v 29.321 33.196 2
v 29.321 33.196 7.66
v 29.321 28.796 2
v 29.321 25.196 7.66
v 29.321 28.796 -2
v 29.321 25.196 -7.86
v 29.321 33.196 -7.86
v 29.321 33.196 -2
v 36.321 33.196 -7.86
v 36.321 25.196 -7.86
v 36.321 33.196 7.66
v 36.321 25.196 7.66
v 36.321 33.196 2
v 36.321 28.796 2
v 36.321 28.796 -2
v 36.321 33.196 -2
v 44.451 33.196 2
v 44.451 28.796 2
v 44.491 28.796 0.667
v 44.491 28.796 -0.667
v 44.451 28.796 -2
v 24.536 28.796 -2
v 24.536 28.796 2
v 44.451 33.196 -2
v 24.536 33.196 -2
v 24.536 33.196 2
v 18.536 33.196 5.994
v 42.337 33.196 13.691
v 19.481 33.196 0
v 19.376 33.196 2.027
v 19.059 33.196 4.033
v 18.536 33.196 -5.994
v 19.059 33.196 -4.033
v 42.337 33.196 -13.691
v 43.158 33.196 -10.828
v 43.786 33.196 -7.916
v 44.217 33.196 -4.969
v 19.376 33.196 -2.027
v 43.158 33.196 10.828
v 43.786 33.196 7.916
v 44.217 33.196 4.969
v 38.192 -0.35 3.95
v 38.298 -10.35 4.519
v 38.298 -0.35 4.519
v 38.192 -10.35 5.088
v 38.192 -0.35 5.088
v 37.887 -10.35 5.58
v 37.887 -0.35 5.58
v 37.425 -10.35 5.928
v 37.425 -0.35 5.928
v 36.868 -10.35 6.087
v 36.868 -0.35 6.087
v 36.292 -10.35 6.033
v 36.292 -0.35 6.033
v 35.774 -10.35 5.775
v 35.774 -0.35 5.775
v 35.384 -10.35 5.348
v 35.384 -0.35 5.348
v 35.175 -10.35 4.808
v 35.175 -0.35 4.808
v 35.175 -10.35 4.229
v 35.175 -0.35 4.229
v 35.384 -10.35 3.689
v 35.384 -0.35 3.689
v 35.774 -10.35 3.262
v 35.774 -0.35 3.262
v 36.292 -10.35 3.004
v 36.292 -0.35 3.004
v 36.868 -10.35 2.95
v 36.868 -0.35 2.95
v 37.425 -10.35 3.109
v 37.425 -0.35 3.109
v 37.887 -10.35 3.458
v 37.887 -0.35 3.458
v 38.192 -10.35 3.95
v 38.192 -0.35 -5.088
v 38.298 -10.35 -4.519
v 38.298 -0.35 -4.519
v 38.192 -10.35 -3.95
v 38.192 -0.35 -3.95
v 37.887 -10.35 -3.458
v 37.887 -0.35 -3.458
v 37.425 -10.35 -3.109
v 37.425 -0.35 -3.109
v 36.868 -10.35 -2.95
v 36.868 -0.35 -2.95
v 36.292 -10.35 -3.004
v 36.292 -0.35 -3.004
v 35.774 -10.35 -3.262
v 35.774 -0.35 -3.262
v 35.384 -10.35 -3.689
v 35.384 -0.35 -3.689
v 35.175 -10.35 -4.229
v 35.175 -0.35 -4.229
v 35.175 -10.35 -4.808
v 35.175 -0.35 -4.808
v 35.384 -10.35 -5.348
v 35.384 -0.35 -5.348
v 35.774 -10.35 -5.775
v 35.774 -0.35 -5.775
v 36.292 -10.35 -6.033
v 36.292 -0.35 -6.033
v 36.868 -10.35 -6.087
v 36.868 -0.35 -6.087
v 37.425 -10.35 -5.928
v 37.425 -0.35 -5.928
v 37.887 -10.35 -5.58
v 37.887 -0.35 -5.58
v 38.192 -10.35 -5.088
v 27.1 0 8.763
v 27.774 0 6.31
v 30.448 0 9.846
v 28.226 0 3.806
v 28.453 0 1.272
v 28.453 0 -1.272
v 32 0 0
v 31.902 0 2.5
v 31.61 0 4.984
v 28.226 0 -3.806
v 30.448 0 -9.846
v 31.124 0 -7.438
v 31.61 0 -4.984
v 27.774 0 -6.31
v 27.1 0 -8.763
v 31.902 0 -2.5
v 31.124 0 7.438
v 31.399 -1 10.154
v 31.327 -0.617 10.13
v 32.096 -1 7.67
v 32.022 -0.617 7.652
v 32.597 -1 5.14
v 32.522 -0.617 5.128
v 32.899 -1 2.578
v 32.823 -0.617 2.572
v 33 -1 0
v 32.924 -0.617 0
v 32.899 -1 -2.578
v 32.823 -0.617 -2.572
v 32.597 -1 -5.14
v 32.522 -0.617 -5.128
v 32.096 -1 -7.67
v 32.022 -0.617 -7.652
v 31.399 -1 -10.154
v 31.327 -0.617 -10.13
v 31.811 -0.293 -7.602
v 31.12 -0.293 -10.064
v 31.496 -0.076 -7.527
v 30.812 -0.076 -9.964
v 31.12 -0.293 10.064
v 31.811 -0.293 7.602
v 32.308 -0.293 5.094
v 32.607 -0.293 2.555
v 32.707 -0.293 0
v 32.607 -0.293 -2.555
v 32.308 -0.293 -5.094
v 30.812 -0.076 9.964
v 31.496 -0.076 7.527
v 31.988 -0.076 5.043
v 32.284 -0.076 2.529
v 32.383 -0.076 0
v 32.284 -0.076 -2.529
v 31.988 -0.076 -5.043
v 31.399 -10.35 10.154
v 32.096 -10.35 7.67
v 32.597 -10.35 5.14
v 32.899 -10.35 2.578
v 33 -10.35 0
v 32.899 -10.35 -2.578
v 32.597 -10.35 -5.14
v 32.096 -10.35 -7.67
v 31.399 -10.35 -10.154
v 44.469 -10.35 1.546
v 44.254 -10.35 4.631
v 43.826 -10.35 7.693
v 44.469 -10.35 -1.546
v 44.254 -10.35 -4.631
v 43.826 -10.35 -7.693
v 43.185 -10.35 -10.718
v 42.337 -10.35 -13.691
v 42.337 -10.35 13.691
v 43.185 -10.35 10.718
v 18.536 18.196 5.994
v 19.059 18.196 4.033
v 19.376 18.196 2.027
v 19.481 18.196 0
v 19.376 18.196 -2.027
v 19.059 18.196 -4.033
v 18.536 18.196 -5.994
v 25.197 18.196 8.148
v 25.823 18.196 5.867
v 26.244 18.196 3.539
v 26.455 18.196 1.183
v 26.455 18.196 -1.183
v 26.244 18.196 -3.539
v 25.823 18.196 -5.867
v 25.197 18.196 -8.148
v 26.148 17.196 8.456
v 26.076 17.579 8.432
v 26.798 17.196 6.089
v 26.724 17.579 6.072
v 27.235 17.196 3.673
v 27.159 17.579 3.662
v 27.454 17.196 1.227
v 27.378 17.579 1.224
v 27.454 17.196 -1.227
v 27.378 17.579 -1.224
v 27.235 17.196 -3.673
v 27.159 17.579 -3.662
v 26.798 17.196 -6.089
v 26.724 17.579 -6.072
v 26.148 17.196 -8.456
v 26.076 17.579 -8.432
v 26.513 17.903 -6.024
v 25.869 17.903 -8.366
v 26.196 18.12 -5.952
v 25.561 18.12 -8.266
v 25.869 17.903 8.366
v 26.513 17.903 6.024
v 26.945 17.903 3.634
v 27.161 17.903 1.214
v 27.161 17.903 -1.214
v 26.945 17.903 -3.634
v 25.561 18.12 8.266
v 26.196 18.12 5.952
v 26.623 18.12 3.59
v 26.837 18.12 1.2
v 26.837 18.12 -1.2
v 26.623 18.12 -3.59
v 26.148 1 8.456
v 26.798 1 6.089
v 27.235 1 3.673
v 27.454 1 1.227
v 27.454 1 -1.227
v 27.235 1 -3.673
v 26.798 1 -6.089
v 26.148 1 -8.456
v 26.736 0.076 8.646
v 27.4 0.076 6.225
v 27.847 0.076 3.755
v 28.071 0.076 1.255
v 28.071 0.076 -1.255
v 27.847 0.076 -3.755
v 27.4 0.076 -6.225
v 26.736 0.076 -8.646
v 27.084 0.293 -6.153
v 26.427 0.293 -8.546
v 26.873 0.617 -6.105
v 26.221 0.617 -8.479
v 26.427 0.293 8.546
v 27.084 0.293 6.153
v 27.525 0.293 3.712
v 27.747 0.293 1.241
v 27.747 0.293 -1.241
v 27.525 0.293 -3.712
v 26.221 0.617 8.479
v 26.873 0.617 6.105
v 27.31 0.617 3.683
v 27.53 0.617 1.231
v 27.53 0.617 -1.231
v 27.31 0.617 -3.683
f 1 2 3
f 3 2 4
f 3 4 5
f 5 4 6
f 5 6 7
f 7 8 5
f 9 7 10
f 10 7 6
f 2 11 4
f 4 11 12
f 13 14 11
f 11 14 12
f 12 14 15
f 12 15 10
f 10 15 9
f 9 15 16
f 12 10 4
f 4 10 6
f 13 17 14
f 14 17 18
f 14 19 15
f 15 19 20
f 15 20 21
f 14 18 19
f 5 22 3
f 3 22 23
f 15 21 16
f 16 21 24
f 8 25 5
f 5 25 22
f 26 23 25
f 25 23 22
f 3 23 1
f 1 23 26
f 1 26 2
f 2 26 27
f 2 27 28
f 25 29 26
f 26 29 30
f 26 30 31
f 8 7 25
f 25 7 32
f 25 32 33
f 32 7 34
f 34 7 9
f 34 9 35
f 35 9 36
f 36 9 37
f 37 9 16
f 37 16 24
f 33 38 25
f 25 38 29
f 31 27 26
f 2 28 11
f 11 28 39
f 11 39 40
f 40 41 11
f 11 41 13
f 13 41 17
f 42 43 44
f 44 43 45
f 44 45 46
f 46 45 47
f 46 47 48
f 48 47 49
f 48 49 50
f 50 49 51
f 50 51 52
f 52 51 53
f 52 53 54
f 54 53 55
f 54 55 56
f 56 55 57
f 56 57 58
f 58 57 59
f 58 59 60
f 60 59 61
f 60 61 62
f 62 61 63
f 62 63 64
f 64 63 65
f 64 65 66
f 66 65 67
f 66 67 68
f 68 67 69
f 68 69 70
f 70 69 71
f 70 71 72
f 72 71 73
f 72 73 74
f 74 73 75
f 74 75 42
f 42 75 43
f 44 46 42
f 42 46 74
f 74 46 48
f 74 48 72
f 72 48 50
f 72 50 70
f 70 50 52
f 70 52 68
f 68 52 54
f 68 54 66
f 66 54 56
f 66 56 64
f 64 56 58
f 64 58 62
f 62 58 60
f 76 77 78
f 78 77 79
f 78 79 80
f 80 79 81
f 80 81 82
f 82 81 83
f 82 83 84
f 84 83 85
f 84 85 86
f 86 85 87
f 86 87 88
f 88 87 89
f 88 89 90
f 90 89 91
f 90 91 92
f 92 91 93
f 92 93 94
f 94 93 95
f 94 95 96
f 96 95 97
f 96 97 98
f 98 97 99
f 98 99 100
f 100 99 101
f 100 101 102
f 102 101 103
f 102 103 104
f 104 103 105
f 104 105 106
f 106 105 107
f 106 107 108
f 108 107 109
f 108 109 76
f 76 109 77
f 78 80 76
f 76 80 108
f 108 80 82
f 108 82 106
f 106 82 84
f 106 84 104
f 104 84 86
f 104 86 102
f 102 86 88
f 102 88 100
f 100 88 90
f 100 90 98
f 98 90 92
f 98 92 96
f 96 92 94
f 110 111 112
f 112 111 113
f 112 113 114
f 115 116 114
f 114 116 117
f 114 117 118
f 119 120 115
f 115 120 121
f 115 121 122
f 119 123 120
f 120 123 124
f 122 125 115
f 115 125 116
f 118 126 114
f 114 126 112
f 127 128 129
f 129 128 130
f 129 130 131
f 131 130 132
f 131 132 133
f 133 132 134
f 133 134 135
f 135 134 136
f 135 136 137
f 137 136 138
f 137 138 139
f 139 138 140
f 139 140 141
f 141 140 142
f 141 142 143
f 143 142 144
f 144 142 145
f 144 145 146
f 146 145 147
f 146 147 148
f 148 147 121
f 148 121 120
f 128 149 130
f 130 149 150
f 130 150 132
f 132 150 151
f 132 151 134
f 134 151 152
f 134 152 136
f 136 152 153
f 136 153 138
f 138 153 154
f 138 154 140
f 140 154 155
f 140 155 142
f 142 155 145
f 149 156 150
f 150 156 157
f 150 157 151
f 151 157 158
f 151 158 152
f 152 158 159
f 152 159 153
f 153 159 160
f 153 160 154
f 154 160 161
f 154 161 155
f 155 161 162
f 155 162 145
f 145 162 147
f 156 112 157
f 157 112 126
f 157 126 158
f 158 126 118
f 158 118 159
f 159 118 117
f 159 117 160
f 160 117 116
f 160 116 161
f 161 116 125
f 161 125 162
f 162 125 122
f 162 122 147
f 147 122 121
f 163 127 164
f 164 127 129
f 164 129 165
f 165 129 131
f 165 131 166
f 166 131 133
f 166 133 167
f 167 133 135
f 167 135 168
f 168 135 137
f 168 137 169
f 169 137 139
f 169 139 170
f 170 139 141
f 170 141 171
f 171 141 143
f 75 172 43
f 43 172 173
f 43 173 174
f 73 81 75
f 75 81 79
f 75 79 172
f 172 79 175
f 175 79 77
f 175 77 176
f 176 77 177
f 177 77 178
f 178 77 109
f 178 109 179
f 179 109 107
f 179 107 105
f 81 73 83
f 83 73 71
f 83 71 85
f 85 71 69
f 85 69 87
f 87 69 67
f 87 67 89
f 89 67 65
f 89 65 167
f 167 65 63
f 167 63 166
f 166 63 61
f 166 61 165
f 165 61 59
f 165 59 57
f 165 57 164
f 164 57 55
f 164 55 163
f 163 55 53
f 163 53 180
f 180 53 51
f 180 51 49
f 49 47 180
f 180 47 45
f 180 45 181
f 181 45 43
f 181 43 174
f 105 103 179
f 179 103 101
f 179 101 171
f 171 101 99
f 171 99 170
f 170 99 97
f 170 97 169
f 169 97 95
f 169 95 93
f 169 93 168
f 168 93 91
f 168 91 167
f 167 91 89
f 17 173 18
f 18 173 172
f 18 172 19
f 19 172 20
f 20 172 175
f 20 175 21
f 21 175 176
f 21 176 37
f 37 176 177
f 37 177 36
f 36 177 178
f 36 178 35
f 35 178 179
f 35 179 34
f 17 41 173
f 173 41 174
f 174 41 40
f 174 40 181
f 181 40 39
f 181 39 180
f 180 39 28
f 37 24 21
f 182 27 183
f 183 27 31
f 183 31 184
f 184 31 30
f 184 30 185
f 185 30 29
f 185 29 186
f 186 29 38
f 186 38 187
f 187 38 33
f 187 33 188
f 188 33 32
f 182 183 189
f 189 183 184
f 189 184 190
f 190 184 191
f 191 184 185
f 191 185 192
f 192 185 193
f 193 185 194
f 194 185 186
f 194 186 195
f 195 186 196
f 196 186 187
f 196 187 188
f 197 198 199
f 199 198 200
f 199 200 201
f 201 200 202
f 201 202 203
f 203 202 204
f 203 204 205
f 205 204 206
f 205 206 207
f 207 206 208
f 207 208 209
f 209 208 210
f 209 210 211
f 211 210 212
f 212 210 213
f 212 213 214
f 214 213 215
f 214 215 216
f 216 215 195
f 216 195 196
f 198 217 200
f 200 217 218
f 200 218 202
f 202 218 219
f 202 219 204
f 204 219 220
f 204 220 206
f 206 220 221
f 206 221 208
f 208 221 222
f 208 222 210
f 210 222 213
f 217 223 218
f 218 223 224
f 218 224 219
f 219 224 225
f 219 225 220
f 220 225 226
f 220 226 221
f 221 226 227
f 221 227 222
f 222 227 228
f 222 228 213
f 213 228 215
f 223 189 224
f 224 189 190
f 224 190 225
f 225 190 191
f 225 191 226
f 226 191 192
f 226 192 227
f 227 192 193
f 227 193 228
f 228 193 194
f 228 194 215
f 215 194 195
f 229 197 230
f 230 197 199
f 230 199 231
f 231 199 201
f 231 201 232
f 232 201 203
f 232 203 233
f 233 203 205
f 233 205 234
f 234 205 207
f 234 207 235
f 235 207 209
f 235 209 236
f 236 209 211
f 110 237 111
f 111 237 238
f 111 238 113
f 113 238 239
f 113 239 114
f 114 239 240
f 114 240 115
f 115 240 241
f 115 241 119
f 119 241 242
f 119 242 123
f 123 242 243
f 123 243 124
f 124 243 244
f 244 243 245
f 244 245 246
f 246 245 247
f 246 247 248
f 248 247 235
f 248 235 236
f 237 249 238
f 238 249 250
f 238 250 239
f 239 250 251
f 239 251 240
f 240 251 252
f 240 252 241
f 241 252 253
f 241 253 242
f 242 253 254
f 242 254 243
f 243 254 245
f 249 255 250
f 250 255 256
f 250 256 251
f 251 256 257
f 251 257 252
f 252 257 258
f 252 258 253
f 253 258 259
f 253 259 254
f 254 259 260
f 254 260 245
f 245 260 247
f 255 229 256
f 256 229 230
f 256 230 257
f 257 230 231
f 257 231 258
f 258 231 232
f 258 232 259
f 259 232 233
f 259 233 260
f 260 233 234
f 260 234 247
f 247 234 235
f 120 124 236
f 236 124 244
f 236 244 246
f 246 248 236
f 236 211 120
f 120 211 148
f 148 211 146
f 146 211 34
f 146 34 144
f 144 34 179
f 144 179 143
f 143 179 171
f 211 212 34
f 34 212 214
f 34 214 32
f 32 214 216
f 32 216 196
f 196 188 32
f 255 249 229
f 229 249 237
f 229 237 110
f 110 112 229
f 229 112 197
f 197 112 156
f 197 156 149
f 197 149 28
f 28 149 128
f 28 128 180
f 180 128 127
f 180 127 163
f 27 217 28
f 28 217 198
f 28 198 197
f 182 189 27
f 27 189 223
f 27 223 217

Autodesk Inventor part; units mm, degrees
ref_plane "YZ Plane" through (0, 0, 0) normal (1, 0, 0) x (0, 1, 0)
ref_plane "XZ Plane" through (0, 0, 0) normal (0, 1, 0) x (-1, 0, 0)
ref_plane "XY Plane" through (0, 0, 0) normal (0, 0, 1) x (1, 0, 0)
sketch "Эскиз3" plane through (0, 0, 0) normal (0, 0, 1) x (1, 0, 0)
  line L0 (28.4814, 0) -> (32, 0)
  line L1 (26.4814, 18.1962) -> (19.4814, 18.1962)
  line L2 (19.4814, 18.1962) -> (19.4814, 33.1962)
  line L3 (27.4814, 17.1962) -> (27.4814, 1)
  line L4 (33, -1) -> (33, -10.35)
  line L5 (33, -10.35) -> (44.4955, -10.35)
  line L6 (109.4355, -10.35) -> (-108.0344, -10.35) projected
  arc A0 (33, -1) -> (32, 0) centre (32, -1) ccw
  arc A1 (27.4814, 1) -> (28.4814, 0) centre (28.4814, 1) ccw
  arc A2 (27.4814, 17.1962) -> (26.4814, 18.1962) centre (26.4814, 17.1962) ccw
  line L7 (19.4814, 33.1962) -> (44.4955, 33.1962)
  line L8 (44.4955, 33.1962) -> (44.4955, -10.35)
  point P0 (27.4814, 18.1962)
  point P1 (27.4814, 0)
  dimension "d25" = 8
  dimension "d42" = 15
  dimension "d44" = 1
  dimension "d45" = 1
  dimension "d54" = 3.5186
  dimension "d55" = 25.0142
sketch "Эскиз4" plane through (0, 0, 0) normal (0, 1, 0) x (-1, 0, 0)
  arc A0 (-24.7386, 8) -> (-24.7386, -8) centre (0, 0) ccw
  dimension "d31" = 26
sweep "Сдвиг1" add profiles "Эскиз3" path "Эскиз4"
sketch "Эскиз8" plane through (0, -10.35, 0) normal (0, -1, 0) x (1, 0, 0)
  arc A0 (31.399, -10.1538) -> (31.399, 10.1538) centre (0, 0) ccw projected
  arc A1 (35.205, -11.3846) -> (35.205, 11.3846) centre (0, 0) ccw construction
  line L0 (42.3369, -13.6909) -> (31.399, -10.1538) projected
  circle A2 centre (36.723, -4.5186) radius 1.575
  circle A3 centre (36.723, 4.5186) radius 1.575
  line L1 (31.399, 10.1538) -> (42.3369, 13.6909) projected
  point P0 (0, 0)
  dimension "d46" = 4
  dimension "d47" = 3.15
  dimension "d48" = 3.15
  dimension "d49" = 7
  dimension "d50" = 7
extrude "Выдавливание4" cut sketch "Эскиз8" against normal blind 10
sketch "Эскиз9" plane through (0, 33.1962, 0) normal (0, 1, 0) x (1, 0, 0)
  point P0 (0, 0)
ref_plane "РабПлоскость1" through (0, -10.35, 0) normal (0, 0, 1) x (0, 1, 0)
sketch "Эскиз10" plane through (0, -10.35, 0) normal (0, 0, 1) x (0, 1, 0)
  line L0 (47.9462, -48.5362) -> (39.1462, -48.5362)
  line L1 (39.1462, -48.5362) -> (39.1462, -24.5362)
  line L2 (39.1462, -24.5362) -> (47.9462, -24.5362)
  line L3 (47.9462, -24.5362) -> (47.9462, -48.5362)
  line L4 (43.5462, -42.3369) -> (43.5462, -18.5362) projected
  line L5 (47.9462, -48.5362) -> (39.1462, -24.5362) construction
  line L6 (39.1462, -48.5362) -> (47.9462, -24.5362) construction
  line L7 (28.5462, -18.5362) -> (43.5462, -18.5362) projected
  point P0 (10.35, 0)
  point P1 (43.5462, -36.5362)
  dimension "d61" = 8.8
  dimension "d68" = 24
  dimension "d69" = 6
extrude "Выдавливание5" cut sketch "Эскиз10" along normal mid plane 4
sketch "Эскиз11" plane through (0, 33.1962, 0) normal (0, 1, 0) x (1, 0, 0)
  line L0 (34.8211, -6.1599) -> (30.8211, -6.1599)
  line L1 (30.8211, -6.1599) -> (30.8211, -0.8676)
  line L2 (30.8211, -0.8676) -> (34.8211, -0.8676)
  line L3 (34.8211, -0.8676) -> (34.8211, -6.1599)
  line L4 (30.8211, 6.3599) -> (34.8211, 6.3599)
  line L5 (34.8211, 6.3599) -> (34.8211, 1.0676)
  line L6 (34.8211, 1.0676) -> (30.8211, 1.0676)
  line L7 (30.8211, 1.0676) -> (30.8211, 6.3599)
  line L8 (36.3211, 7.8599) -> (29.3211, 7.8599)
  line L9 (29.3211, 7.8599) -> (29.3211, -0.4324)
  line L10 (29.3211, -0.4324) -> (36.3211, -0.4324)
  line L11 (36.3211, -0.4324) -> (36.3211, 7.8599)
  line L12 (36.3211, -7.6599) -> (29.3211, -7.6599)
  line L13 (29.3211, -7.6599) -> (29.3211, 0.6324)
  line L14 (29.3211, 0.6324) -> (36.3211, 0.6324)
  line L15 (36.3211, 0.6324) -> (36.3211, -7.6599)
  point P0 (0, 0)
  point P1 (29.3211, -0.4324)
  dimension "d66" = 1.5
  dimension "d67" = 1.5
extrude "Выдавливание6" cut sketch "Эскиз11" against normal blind 8 contours L0 L1 L2 L3 | L4 L5 L6 L7 | L11 L14 L9 L8 | L11 L10 L9 L14 | L15 L12 L13 L10
properties part number "креп_подш"
